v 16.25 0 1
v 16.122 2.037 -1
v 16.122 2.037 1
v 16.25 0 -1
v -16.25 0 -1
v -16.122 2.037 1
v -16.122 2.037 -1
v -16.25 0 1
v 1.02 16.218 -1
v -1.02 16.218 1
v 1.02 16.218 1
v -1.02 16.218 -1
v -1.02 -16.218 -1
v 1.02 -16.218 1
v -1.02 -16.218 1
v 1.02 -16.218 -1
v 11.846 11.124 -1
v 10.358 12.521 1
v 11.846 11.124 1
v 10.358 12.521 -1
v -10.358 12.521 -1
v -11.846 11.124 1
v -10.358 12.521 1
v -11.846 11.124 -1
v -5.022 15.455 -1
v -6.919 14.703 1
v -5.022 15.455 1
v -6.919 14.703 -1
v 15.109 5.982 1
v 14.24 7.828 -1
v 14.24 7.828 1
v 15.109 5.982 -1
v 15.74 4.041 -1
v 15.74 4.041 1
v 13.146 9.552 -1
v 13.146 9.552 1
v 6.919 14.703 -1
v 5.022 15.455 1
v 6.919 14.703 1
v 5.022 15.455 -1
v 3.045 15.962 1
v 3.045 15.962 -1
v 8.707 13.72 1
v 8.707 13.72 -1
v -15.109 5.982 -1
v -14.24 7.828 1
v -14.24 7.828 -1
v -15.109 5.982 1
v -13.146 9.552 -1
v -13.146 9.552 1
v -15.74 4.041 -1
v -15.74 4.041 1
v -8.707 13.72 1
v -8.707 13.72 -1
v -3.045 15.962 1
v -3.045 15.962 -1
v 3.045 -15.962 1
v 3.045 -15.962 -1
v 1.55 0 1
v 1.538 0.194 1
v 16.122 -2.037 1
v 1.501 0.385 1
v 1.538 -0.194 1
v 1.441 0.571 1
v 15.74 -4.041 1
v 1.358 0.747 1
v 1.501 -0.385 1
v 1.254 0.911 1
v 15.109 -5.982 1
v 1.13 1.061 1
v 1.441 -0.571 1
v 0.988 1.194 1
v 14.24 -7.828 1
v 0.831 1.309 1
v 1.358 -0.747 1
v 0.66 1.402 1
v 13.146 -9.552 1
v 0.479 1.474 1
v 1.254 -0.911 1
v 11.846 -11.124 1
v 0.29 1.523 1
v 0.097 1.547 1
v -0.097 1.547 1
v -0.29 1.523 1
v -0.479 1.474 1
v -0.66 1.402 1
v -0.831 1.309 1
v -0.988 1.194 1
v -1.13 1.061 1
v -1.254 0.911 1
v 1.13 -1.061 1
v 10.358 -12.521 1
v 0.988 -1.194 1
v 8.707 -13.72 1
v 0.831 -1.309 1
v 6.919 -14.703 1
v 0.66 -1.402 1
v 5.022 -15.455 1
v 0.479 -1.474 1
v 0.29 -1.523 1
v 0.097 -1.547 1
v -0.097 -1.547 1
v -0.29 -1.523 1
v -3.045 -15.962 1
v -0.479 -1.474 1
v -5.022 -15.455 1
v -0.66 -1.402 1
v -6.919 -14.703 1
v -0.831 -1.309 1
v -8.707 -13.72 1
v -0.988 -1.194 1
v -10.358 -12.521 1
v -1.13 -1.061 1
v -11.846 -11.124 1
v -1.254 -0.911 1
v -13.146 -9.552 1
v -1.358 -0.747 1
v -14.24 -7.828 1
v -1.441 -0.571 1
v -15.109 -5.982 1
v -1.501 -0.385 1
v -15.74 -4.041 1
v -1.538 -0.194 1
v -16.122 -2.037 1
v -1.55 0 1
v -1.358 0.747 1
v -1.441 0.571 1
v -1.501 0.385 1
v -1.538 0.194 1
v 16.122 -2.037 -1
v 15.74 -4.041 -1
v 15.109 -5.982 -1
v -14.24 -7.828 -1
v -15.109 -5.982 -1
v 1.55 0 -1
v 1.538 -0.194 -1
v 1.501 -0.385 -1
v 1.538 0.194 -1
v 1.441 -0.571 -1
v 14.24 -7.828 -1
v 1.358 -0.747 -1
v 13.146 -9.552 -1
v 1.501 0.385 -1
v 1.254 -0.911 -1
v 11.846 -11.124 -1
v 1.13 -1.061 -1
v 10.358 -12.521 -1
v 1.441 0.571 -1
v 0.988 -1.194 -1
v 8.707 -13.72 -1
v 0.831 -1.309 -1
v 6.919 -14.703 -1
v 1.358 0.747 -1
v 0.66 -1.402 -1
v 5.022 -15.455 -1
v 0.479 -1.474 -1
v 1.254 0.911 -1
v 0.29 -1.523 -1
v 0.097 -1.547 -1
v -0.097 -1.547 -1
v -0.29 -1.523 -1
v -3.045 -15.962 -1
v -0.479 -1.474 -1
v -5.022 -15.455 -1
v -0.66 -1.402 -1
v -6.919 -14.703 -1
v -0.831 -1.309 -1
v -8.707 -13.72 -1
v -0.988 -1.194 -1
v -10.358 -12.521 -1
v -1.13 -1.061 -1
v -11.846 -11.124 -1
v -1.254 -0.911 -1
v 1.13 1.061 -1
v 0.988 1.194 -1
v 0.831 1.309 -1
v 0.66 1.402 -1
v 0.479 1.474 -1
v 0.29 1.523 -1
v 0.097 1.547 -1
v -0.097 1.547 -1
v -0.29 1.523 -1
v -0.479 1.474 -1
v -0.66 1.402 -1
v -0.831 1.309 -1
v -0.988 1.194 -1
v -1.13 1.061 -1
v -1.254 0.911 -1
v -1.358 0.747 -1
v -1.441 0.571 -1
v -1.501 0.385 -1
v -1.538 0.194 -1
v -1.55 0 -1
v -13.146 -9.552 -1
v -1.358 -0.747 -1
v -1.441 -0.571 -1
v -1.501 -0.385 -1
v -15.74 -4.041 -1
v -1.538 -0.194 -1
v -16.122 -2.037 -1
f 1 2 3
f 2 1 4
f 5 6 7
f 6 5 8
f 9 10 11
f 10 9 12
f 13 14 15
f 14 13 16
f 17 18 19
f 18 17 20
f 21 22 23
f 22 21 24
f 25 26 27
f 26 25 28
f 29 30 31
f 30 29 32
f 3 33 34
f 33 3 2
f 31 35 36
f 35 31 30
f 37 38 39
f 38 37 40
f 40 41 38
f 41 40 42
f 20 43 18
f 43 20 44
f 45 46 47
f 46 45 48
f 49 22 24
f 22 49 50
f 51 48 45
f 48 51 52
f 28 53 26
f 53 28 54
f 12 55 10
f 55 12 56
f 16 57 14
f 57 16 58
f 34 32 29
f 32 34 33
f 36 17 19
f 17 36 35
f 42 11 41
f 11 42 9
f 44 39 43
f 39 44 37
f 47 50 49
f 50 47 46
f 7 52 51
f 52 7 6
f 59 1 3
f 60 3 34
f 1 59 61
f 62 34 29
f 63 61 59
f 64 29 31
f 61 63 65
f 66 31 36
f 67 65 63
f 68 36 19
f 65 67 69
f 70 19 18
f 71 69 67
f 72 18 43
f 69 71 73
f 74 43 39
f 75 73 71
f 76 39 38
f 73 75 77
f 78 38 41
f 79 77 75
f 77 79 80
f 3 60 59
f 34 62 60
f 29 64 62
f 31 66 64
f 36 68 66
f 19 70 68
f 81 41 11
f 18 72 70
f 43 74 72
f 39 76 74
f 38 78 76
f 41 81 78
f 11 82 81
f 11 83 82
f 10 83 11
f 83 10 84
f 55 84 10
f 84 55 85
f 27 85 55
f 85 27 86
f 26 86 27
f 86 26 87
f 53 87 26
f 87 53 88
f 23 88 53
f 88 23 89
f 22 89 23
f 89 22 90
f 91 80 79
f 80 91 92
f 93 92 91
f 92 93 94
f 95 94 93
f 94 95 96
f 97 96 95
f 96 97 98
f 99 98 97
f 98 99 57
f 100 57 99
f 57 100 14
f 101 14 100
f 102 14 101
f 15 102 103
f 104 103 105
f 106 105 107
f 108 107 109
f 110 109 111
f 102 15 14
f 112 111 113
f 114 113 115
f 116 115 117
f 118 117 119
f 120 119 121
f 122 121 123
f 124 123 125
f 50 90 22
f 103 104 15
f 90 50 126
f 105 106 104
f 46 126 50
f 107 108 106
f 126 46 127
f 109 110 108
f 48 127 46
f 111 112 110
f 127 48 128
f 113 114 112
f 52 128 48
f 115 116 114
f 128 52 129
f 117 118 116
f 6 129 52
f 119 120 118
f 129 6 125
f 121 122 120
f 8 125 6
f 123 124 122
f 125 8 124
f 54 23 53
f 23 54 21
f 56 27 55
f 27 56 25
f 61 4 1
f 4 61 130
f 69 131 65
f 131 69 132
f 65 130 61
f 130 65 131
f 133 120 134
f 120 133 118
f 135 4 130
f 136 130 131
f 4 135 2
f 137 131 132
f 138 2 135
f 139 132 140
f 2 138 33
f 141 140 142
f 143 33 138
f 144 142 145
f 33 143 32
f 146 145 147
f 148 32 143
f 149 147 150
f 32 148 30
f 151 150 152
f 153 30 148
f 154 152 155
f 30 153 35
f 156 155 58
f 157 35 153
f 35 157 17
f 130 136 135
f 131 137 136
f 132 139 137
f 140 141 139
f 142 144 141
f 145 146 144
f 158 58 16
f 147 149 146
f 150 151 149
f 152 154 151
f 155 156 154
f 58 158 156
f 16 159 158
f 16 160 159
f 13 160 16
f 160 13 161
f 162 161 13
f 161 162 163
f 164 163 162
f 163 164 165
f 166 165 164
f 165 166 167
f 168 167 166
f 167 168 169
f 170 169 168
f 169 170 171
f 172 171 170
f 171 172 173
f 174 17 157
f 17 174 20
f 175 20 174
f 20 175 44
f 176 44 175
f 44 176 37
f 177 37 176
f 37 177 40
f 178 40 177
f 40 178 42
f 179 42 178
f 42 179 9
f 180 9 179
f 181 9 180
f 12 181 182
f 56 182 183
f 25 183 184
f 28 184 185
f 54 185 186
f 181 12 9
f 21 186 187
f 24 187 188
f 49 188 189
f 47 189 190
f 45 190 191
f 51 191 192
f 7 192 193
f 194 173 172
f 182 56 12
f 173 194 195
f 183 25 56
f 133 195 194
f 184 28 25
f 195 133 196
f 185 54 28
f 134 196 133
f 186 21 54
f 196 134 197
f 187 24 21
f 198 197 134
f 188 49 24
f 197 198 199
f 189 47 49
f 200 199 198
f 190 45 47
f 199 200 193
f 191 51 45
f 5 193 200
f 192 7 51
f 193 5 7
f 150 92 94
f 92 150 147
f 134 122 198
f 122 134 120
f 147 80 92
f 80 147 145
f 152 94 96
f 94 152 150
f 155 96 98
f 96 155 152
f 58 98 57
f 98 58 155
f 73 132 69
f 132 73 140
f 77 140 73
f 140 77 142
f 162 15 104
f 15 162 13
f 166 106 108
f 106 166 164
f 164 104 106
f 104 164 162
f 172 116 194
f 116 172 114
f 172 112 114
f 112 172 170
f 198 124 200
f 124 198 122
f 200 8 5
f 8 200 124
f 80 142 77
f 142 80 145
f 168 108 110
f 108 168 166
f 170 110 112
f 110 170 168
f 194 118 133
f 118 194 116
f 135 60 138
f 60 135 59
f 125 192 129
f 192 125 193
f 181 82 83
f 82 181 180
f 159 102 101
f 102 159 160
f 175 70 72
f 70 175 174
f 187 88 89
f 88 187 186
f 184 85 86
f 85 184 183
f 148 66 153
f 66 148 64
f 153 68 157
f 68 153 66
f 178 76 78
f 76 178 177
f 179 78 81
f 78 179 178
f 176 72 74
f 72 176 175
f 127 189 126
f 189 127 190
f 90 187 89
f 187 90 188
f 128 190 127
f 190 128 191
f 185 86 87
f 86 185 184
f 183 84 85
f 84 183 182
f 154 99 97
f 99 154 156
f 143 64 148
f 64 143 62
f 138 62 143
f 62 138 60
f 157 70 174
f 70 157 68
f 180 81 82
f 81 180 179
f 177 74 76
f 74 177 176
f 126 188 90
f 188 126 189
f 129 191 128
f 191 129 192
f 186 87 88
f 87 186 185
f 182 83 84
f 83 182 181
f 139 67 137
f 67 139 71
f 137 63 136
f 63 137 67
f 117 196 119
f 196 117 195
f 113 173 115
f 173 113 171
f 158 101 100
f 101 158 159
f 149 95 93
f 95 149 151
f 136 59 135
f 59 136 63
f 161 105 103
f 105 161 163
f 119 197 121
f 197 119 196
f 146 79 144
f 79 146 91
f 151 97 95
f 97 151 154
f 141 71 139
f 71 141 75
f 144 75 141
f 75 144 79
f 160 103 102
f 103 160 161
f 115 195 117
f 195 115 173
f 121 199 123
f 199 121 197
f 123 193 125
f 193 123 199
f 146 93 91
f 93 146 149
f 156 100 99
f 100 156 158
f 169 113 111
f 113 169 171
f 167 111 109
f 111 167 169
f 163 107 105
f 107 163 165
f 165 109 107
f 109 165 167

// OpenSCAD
$fn = 50;


difference() {
	union() {
		translate(v = [0, 0, -1.0000000000]) {
			cylinder(h = 2, r = 16.2500000000);
		}
	}
	union() {
		translate(v = [0, 0, -100.0000000000]) {
			cylinder(h = 200, r = 1.5500000000);
		}
	}
}
